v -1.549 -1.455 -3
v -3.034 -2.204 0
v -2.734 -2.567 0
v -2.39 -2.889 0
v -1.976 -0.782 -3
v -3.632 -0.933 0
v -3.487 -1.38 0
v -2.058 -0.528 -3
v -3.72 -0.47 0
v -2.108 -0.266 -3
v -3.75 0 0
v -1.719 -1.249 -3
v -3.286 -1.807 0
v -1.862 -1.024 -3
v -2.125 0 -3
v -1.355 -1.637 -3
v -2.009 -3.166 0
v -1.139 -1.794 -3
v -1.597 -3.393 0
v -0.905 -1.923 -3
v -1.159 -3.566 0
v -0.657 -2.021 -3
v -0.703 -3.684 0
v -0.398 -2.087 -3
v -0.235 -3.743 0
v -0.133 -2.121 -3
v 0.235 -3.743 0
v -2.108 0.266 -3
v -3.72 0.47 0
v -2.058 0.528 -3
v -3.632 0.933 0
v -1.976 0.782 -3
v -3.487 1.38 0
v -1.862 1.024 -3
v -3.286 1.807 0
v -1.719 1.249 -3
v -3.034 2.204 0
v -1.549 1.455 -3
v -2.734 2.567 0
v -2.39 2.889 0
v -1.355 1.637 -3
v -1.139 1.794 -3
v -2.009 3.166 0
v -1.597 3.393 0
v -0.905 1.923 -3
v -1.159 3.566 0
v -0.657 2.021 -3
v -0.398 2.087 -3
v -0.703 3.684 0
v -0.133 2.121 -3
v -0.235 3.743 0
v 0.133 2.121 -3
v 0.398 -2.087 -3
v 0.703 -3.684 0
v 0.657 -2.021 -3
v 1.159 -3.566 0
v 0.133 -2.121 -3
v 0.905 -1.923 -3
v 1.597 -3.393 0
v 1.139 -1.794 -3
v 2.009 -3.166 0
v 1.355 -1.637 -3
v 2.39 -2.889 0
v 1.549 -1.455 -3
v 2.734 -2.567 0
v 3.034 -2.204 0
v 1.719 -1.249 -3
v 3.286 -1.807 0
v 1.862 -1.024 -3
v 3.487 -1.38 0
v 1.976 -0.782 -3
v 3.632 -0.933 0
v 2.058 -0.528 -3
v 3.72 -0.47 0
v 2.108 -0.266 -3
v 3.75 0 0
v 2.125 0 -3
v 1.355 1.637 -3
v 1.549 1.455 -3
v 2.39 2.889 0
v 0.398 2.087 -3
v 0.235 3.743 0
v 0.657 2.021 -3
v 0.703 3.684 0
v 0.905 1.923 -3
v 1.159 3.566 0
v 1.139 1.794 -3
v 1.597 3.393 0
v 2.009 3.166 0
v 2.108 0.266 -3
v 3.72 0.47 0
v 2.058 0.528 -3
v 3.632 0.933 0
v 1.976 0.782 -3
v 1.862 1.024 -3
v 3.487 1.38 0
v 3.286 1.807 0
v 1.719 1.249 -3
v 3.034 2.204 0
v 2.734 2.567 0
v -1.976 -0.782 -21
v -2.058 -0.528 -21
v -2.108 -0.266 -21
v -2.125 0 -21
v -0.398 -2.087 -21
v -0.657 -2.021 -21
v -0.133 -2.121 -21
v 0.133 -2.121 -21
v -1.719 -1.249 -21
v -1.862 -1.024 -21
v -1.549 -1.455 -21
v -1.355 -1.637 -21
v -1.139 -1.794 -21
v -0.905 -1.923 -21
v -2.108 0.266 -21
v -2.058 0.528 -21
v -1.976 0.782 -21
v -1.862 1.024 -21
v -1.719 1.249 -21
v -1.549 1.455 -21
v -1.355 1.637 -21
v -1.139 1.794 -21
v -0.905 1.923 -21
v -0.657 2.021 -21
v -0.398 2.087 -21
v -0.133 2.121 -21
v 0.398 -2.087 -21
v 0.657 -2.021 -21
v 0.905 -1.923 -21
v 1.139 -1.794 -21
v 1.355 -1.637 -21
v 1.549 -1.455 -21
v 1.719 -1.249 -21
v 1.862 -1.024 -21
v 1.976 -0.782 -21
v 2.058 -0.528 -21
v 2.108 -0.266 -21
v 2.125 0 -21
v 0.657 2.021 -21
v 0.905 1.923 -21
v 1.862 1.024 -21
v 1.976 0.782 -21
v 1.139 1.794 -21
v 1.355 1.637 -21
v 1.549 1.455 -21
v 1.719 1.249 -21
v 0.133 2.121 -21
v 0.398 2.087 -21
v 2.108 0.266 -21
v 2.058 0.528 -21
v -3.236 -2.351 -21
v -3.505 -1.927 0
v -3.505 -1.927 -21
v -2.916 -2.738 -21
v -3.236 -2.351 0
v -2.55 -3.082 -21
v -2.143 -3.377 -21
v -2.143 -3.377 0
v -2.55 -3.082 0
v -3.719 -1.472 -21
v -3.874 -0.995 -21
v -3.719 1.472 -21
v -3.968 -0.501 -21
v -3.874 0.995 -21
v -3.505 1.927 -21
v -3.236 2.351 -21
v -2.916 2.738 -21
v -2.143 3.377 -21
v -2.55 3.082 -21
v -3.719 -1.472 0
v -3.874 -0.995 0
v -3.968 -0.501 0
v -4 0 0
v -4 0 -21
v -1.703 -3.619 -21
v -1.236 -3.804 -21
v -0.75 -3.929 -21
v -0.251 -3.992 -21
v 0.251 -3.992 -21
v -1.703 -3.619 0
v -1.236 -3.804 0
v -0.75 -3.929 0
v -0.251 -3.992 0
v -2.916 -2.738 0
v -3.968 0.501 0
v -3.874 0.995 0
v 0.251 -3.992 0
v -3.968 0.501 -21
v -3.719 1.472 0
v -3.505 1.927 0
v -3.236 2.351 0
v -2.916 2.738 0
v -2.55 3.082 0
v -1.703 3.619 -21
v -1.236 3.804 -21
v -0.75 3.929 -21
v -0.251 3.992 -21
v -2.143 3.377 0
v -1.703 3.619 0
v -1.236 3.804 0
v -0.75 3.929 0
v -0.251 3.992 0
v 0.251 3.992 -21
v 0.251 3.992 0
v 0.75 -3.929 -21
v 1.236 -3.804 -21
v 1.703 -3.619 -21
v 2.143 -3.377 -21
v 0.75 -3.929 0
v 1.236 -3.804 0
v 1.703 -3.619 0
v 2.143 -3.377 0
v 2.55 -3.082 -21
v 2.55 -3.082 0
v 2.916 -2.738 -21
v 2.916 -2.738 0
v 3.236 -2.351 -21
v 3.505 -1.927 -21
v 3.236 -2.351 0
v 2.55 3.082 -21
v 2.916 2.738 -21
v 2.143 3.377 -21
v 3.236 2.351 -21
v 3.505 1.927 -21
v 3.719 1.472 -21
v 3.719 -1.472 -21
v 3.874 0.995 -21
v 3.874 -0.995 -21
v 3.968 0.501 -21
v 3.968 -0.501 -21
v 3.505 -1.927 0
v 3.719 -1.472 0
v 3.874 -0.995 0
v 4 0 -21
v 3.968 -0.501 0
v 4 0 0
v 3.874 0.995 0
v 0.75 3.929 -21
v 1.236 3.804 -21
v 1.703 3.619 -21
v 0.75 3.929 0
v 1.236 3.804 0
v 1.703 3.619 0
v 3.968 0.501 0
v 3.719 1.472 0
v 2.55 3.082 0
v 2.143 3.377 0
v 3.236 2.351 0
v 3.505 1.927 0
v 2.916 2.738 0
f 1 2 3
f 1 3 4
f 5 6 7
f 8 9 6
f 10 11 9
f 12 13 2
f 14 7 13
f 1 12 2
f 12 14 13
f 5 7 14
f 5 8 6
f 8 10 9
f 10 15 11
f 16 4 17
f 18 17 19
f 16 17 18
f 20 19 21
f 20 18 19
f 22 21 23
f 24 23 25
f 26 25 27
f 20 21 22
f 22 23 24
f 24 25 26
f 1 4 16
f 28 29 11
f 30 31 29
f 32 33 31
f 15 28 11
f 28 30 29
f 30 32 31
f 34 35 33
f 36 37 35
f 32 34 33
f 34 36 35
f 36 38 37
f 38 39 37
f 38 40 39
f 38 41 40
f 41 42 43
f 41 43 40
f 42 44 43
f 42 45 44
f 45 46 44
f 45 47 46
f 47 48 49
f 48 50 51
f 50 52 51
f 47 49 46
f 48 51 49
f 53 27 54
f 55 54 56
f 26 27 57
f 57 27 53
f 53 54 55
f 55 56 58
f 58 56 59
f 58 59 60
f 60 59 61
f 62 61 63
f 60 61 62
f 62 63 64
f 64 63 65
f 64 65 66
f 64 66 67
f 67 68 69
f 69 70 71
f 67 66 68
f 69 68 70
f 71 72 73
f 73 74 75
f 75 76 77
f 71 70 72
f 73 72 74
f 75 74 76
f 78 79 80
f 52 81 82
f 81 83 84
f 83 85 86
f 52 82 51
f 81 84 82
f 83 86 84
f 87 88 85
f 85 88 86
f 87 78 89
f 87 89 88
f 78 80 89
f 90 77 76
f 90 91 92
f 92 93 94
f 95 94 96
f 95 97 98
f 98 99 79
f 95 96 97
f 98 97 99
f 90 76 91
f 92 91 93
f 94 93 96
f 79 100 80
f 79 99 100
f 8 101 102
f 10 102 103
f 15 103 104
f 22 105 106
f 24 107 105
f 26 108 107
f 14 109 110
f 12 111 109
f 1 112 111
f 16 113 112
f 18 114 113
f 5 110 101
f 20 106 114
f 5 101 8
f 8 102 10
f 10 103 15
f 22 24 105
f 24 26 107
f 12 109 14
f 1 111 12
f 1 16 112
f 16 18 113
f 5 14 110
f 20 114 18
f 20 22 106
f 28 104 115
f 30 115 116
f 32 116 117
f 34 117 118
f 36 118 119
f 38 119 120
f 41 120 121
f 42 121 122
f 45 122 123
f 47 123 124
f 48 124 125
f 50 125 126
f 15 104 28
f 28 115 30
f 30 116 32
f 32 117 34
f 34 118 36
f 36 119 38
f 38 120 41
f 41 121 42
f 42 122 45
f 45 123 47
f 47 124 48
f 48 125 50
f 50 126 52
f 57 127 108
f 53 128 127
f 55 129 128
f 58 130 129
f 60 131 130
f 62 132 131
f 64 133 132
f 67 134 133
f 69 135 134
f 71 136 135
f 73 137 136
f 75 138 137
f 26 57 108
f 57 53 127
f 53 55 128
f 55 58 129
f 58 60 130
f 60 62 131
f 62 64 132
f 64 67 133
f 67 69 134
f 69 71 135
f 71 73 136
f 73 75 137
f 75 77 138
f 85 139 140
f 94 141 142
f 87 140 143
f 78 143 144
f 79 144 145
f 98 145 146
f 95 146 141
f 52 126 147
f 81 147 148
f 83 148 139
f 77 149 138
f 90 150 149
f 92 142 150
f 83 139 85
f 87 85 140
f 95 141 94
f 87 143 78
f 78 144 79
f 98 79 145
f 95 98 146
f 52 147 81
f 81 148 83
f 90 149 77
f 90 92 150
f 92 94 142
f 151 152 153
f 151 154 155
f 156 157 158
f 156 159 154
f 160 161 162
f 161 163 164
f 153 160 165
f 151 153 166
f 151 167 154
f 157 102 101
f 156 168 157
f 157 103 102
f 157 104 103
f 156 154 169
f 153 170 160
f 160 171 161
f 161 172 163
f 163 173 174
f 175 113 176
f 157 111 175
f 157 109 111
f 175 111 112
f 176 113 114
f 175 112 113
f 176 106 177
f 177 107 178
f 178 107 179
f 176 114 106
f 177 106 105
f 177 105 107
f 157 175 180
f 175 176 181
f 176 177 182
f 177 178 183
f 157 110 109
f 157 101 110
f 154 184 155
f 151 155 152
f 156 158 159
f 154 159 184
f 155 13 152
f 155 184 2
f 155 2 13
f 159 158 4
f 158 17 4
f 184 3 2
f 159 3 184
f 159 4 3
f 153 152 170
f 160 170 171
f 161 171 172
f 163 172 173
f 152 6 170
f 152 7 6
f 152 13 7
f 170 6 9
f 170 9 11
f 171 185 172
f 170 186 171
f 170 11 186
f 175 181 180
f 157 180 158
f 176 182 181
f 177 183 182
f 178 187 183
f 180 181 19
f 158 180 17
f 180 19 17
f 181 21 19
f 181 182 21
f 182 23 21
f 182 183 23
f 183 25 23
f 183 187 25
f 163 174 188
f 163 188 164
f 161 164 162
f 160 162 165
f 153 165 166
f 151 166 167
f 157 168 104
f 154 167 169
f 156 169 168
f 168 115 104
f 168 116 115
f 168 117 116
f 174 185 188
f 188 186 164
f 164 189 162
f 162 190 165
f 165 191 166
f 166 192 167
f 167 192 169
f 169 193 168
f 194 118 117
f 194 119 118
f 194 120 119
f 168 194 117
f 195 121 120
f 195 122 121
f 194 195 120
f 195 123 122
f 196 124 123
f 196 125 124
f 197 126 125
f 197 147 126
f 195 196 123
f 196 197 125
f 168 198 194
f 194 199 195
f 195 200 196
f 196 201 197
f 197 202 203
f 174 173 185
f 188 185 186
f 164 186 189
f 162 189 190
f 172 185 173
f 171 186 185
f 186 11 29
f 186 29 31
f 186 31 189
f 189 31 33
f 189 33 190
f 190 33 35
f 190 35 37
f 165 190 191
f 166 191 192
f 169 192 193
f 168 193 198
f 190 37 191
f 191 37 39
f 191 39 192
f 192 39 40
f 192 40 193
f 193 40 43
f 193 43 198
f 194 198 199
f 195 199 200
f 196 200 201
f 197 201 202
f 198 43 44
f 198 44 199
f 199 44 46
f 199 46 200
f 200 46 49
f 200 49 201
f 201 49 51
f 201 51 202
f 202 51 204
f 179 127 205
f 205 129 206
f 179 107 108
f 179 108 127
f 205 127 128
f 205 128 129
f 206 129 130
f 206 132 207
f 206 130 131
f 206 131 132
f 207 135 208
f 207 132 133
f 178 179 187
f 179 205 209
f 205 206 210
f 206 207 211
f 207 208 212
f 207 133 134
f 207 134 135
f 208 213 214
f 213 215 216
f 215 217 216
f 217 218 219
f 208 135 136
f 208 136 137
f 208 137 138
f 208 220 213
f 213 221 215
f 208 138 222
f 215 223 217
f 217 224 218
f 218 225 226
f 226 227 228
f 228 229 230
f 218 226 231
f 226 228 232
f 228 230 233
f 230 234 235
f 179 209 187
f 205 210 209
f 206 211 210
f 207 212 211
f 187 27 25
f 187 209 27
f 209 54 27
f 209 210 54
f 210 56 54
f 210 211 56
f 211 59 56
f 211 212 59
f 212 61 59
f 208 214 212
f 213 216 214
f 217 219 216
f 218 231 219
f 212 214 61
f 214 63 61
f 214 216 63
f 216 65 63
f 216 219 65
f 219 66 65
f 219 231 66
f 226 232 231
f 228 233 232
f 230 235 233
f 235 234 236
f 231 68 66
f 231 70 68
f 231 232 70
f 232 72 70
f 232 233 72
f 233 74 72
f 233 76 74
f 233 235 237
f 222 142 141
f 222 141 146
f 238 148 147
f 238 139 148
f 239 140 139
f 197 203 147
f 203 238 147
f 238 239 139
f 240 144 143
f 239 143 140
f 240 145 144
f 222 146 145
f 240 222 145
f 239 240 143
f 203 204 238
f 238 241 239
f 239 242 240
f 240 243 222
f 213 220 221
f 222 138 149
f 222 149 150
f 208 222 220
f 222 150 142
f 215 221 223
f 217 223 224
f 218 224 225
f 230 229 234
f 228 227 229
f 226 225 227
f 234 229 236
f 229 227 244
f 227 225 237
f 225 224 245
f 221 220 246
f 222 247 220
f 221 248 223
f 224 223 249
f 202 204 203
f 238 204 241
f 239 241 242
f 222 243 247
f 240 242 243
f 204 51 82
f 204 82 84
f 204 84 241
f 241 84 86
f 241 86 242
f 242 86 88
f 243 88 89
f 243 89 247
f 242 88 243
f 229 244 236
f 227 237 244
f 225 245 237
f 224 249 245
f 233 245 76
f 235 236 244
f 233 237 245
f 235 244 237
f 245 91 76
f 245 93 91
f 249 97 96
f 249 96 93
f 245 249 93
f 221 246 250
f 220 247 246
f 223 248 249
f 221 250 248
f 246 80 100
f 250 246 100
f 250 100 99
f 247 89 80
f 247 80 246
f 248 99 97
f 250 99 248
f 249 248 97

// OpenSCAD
$fn = 50;

difference() {
	union() {
		translate(v = [0, 0, -21.0]) {
			cylinder(h = 24, r = 4.0);
		}
	}
	union() {
		translate(v = [0, 0, 0]) {
			rotate(a = [0, 0, 0]) {
				difference() {
					union() {
						translate(v = [0, 0, -24.0]) {
							cylinder(h = 24, r = 2.0);
						}
						translate(v = [0, 0, -3]) {
							cylinder(h = 3, r1 = 2.125, r2 = 3.75);
						}
						translate(v = [0, 0, -24.0]) {
							cylinder(h = 24, r = 2.125);
						}
						translate(v = [0, 0, -24.0]) {
							cylinder(h = 24, r = 2.0);
						}
					}
					union();
				}
			}
		}
		#cylinder(h = 3, r = 5.0);
	}
}
